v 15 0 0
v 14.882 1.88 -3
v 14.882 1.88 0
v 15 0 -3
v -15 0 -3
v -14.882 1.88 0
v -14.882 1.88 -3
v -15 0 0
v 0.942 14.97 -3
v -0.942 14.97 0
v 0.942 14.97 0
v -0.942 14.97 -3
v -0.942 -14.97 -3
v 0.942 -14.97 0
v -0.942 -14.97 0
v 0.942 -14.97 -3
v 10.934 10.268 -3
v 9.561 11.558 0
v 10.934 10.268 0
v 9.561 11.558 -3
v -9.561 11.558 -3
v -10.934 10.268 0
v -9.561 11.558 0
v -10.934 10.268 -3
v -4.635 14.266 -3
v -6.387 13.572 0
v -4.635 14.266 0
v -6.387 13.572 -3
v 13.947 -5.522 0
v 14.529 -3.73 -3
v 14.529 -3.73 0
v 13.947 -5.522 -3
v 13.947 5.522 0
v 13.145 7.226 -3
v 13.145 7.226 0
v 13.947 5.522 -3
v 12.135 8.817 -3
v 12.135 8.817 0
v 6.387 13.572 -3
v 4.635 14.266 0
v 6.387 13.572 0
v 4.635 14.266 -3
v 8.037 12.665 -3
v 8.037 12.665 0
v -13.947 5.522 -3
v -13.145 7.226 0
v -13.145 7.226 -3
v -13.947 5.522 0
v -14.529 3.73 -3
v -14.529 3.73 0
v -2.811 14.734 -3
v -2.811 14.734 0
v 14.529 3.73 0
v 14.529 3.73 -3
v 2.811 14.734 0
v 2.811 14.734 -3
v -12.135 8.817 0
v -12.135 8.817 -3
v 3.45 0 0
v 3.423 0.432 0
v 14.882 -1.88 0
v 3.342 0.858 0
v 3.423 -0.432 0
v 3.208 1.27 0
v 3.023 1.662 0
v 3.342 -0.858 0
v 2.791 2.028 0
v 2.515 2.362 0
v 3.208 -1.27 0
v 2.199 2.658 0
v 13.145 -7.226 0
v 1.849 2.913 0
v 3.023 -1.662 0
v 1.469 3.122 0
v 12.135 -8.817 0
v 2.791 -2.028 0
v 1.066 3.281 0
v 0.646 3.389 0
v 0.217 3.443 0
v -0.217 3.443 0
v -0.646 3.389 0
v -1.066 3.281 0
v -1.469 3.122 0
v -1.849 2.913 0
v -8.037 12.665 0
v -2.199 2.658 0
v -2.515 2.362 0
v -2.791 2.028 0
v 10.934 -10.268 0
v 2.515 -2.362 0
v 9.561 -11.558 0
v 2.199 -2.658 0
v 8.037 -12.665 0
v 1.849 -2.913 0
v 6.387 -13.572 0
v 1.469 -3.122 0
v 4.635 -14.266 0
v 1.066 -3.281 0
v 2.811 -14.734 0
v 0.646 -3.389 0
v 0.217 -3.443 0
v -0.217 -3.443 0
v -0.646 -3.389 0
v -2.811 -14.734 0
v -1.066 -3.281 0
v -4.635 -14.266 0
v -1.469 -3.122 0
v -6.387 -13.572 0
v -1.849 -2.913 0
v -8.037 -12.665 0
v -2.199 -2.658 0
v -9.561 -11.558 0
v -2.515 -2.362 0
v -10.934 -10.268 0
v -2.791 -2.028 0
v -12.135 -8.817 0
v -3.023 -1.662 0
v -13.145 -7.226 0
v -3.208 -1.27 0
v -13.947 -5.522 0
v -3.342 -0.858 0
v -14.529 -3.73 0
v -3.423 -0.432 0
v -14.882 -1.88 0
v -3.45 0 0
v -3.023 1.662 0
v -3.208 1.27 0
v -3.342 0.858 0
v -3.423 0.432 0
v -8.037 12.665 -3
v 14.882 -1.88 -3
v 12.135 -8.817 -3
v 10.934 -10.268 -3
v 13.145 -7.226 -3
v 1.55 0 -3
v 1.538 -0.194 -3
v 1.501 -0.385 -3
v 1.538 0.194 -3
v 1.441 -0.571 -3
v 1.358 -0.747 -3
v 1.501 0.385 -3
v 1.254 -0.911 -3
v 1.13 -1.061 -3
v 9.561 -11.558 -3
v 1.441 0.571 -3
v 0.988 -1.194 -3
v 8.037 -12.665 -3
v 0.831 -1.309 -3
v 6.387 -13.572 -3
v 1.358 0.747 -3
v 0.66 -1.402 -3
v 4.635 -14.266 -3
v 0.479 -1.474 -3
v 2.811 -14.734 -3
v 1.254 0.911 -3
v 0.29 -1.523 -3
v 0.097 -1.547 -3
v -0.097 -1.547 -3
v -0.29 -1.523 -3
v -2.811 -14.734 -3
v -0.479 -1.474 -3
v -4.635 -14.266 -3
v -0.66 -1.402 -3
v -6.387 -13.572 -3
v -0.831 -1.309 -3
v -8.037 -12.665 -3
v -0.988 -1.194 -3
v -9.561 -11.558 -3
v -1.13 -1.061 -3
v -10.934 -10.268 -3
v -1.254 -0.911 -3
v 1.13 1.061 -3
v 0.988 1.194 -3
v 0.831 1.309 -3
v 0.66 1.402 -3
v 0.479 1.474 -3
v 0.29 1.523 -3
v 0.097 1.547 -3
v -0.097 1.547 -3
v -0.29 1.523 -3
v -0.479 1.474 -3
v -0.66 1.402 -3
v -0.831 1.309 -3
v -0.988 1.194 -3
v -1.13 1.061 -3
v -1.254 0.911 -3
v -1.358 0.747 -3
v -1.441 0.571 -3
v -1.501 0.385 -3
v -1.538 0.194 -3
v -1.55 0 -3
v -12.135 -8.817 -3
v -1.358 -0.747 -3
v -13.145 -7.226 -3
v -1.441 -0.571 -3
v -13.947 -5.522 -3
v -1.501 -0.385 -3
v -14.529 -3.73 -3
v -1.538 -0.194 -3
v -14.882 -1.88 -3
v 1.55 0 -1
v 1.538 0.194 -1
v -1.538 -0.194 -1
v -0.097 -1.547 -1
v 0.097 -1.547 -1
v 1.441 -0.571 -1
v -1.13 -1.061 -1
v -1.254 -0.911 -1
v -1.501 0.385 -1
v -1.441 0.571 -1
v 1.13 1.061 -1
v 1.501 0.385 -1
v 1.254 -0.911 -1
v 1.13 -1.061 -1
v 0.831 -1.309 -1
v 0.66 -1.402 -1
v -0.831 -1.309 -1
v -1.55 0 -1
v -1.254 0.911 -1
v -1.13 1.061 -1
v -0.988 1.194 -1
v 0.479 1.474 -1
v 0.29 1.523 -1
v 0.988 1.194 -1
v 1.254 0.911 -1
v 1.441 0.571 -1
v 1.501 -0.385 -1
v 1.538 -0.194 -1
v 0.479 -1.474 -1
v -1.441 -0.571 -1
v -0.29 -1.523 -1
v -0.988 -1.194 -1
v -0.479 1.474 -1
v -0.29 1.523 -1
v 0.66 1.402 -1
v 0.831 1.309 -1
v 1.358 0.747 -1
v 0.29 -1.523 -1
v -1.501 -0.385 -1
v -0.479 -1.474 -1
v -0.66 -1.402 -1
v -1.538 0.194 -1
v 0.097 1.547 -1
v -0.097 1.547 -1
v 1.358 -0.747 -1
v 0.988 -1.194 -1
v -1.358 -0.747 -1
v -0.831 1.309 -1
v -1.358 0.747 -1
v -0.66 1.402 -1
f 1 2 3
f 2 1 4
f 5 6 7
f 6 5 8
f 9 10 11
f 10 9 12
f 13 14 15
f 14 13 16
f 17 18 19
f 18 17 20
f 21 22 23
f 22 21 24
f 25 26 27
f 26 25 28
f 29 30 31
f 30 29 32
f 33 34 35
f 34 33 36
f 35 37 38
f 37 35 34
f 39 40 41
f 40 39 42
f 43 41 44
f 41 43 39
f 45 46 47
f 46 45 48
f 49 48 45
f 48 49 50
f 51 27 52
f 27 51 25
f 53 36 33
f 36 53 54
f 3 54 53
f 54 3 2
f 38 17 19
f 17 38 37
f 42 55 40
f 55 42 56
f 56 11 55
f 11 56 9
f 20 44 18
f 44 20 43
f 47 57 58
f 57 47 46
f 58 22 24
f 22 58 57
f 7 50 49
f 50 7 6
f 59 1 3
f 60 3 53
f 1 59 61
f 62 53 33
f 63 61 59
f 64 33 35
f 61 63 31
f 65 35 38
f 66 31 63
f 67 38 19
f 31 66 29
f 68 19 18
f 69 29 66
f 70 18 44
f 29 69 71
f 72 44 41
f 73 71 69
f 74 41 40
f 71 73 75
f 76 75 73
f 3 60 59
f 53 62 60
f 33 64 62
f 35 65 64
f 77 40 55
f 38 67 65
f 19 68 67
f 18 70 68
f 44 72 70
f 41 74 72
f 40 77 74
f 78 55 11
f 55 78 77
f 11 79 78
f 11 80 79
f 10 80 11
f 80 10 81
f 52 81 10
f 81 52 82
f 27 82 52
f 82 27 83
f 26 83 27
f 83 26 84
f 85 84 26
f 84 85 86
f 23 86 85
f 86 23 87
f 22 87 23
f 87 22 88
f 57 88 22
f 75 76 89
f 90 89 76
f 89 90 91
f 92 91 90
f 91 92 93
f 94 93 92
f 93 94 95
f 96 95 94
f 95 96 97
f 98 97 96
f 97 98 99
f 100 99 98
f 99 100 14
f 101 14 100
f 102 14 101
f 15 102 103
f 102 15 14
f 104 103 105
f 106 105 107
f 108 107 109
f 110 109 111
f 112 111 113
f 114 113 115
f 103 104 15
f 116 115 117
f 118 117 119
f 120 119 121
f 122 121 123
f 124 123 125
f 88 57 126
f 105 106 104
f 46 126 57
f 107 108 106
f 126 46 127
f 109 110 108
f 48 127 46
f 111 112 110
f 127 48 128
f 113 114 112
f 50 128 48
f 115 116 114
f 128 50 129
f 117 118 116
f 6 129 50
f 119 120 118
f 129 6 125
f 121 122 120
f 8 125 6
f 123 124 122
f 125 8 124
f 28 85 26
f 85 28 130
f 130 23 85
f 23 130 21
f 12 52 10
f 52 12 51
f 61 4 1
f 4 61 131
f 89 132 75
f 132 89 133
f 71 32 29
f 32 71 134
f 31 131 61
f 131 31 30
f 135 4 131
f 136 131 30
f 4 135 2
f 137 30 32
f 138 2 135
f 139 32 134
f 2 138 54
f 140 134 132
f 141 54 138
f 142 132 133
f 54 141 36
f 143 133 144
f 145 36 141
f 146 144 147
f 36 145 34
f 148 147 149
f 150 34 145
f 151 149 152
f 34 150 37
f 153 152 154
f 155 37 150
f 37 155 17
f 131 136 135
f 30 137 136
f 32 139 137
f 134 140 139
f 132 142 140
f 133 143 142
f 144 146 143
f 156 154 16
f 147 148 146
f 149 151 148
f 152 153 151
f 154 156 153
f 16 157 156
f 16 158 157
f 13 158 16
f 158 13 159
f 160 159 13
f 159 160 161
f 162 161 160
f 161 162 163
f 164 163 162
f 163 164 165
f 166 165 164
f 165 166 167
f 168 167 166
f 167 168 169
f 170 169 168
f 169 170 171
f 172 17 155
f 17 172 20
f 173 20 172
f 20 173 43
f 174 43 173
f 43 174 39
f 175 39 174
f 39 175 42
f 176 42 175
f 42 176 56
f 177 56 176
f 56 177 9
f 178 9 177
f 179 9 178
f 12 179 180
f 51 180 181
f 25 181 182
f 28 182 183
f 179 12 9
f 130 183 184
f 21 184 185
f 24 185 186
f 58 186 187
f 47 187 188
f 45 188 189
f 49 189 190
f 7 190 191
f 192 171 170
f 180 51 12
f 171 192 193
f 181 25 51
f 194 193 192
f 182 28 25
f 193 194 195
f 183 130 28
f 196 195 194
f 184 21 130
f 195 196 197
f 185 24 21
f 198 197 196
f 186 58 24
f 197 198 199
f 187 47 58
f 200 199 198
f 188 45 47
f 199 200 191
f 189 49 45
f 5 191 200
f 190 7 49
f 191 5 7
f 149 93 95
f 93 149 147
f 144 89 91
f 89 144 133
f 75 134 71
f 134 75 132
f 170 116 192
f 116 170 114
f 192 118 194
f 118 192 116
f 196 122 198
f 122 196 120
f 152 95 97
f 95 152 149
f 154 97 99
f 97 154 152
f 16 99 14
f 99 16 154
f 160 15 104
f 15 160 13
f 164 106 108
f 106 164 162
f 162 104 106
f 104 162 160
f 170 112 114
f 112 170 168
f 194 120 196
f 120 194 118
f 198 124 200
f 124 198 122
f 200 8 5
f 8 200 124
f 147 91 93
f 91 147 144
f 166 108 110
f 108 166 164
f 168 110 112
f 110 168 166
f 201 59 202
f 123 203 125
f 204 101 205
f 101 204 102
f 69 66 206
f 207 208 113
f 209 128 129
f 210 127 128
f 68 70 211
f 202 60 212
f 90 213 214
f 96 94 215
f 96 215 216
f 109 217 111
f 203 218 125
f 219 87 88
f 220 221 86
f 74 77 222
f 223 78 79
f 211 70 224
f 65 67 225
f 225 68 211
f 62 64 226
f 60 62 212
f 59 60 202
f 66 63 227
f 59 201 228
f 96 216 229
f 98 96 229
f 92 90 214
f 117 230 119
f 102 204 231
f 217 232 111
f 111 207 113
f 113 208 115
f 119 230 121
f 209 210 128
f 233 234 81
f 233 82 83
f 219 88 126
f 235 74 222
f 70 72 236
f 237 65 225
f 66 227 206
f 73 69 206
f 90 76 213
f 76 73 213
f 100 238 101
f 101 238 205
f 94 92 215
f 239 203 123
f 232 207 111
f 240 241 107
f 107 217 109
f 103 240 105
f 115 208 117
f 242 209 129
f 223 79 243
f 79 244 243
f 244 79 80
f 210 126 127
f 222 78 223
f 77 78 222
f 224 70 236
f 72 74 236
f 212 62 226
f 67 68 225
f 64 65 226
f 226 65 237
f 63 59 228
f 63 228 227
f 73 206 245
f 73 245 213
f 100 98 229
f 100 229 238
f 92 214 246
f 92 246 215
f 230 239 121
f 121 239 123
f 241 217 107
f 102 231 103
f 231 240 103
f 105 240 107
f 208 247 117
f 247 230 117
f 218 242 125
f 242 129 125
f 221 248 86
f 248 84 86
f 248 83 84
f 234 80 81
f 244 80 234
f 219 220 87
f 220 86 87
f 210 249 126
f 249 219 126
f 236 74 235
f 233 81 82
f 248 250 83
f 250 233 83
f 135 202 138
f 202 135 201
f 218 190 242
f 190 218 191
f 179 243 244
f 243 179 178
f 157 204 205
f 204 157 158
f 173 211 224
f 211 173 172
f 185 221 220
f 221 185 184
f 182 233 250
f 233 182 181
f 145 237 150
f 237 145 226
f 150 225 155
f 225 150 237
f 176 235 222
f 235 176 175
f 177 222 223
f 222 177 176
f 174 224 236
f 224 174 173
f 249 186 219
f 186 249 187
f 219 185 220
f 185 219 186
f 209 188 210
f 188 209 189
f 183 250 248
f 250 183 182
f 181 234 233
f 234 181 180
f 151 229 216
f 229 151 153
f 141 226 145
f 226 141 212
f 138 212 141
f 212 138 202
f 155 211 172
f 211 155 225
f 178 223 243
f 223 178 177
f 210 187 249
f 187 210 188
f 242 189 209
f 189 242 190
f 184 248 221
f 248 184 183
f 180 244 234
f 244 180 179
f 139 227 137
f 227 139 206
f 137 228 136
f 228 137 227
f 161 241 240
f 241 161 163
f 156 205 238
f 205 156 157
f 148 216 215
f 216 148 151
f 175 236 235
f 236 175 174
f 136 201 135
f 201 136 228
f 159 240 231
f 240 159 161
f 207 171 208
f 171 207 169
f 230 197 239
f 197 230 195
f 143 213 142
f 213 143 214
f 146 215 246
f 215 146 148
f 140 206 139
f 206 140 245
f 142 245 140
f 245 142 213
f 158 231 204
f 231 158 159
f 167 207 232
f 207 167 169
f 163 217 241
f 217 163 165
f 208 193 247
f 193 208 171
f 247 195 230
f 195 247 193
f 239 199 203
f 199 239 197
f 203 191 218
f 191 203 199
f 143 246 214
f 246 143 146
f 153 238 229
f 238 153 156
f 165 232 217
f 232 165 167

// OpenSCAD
$fn = 50;


difference() {
	union() {
		translate(v = [0, 0, -3.0000000000]) {
			cylinder(h = 3, r = 15.0000000000);
		}
		translate(v = [0, 0, -3.0000000000]) {
			cylinder(h = 3, r = 2.8750000000);
		}
	}
	union() {
		translate(v = [0, 0, 0]) {
			rotate(a = [0, 0, 0]) {
				difference() {
					union() {
						translate(v = [0, 0, -3.0000000000]) {
							cylinder(h = 3, r = 1.2500000000);
						}
						translate(v = [0, 0, -1.0000000000]) {
							cylinder(h = 1.0000000000, r1 = 1.5500000000, r2 = 3.4500000000);
						}
						translate(v = [0, 0, -3.0000000000]) {
							cylinder(h = 3, r = 1.5500000000);
						}
						translate(v = [0, 0, -3.0000000000]) {
							cylinder(h = 3, r = 1.2500000000);
						}
					}
					union();
				}
			}
		}
	}
}
